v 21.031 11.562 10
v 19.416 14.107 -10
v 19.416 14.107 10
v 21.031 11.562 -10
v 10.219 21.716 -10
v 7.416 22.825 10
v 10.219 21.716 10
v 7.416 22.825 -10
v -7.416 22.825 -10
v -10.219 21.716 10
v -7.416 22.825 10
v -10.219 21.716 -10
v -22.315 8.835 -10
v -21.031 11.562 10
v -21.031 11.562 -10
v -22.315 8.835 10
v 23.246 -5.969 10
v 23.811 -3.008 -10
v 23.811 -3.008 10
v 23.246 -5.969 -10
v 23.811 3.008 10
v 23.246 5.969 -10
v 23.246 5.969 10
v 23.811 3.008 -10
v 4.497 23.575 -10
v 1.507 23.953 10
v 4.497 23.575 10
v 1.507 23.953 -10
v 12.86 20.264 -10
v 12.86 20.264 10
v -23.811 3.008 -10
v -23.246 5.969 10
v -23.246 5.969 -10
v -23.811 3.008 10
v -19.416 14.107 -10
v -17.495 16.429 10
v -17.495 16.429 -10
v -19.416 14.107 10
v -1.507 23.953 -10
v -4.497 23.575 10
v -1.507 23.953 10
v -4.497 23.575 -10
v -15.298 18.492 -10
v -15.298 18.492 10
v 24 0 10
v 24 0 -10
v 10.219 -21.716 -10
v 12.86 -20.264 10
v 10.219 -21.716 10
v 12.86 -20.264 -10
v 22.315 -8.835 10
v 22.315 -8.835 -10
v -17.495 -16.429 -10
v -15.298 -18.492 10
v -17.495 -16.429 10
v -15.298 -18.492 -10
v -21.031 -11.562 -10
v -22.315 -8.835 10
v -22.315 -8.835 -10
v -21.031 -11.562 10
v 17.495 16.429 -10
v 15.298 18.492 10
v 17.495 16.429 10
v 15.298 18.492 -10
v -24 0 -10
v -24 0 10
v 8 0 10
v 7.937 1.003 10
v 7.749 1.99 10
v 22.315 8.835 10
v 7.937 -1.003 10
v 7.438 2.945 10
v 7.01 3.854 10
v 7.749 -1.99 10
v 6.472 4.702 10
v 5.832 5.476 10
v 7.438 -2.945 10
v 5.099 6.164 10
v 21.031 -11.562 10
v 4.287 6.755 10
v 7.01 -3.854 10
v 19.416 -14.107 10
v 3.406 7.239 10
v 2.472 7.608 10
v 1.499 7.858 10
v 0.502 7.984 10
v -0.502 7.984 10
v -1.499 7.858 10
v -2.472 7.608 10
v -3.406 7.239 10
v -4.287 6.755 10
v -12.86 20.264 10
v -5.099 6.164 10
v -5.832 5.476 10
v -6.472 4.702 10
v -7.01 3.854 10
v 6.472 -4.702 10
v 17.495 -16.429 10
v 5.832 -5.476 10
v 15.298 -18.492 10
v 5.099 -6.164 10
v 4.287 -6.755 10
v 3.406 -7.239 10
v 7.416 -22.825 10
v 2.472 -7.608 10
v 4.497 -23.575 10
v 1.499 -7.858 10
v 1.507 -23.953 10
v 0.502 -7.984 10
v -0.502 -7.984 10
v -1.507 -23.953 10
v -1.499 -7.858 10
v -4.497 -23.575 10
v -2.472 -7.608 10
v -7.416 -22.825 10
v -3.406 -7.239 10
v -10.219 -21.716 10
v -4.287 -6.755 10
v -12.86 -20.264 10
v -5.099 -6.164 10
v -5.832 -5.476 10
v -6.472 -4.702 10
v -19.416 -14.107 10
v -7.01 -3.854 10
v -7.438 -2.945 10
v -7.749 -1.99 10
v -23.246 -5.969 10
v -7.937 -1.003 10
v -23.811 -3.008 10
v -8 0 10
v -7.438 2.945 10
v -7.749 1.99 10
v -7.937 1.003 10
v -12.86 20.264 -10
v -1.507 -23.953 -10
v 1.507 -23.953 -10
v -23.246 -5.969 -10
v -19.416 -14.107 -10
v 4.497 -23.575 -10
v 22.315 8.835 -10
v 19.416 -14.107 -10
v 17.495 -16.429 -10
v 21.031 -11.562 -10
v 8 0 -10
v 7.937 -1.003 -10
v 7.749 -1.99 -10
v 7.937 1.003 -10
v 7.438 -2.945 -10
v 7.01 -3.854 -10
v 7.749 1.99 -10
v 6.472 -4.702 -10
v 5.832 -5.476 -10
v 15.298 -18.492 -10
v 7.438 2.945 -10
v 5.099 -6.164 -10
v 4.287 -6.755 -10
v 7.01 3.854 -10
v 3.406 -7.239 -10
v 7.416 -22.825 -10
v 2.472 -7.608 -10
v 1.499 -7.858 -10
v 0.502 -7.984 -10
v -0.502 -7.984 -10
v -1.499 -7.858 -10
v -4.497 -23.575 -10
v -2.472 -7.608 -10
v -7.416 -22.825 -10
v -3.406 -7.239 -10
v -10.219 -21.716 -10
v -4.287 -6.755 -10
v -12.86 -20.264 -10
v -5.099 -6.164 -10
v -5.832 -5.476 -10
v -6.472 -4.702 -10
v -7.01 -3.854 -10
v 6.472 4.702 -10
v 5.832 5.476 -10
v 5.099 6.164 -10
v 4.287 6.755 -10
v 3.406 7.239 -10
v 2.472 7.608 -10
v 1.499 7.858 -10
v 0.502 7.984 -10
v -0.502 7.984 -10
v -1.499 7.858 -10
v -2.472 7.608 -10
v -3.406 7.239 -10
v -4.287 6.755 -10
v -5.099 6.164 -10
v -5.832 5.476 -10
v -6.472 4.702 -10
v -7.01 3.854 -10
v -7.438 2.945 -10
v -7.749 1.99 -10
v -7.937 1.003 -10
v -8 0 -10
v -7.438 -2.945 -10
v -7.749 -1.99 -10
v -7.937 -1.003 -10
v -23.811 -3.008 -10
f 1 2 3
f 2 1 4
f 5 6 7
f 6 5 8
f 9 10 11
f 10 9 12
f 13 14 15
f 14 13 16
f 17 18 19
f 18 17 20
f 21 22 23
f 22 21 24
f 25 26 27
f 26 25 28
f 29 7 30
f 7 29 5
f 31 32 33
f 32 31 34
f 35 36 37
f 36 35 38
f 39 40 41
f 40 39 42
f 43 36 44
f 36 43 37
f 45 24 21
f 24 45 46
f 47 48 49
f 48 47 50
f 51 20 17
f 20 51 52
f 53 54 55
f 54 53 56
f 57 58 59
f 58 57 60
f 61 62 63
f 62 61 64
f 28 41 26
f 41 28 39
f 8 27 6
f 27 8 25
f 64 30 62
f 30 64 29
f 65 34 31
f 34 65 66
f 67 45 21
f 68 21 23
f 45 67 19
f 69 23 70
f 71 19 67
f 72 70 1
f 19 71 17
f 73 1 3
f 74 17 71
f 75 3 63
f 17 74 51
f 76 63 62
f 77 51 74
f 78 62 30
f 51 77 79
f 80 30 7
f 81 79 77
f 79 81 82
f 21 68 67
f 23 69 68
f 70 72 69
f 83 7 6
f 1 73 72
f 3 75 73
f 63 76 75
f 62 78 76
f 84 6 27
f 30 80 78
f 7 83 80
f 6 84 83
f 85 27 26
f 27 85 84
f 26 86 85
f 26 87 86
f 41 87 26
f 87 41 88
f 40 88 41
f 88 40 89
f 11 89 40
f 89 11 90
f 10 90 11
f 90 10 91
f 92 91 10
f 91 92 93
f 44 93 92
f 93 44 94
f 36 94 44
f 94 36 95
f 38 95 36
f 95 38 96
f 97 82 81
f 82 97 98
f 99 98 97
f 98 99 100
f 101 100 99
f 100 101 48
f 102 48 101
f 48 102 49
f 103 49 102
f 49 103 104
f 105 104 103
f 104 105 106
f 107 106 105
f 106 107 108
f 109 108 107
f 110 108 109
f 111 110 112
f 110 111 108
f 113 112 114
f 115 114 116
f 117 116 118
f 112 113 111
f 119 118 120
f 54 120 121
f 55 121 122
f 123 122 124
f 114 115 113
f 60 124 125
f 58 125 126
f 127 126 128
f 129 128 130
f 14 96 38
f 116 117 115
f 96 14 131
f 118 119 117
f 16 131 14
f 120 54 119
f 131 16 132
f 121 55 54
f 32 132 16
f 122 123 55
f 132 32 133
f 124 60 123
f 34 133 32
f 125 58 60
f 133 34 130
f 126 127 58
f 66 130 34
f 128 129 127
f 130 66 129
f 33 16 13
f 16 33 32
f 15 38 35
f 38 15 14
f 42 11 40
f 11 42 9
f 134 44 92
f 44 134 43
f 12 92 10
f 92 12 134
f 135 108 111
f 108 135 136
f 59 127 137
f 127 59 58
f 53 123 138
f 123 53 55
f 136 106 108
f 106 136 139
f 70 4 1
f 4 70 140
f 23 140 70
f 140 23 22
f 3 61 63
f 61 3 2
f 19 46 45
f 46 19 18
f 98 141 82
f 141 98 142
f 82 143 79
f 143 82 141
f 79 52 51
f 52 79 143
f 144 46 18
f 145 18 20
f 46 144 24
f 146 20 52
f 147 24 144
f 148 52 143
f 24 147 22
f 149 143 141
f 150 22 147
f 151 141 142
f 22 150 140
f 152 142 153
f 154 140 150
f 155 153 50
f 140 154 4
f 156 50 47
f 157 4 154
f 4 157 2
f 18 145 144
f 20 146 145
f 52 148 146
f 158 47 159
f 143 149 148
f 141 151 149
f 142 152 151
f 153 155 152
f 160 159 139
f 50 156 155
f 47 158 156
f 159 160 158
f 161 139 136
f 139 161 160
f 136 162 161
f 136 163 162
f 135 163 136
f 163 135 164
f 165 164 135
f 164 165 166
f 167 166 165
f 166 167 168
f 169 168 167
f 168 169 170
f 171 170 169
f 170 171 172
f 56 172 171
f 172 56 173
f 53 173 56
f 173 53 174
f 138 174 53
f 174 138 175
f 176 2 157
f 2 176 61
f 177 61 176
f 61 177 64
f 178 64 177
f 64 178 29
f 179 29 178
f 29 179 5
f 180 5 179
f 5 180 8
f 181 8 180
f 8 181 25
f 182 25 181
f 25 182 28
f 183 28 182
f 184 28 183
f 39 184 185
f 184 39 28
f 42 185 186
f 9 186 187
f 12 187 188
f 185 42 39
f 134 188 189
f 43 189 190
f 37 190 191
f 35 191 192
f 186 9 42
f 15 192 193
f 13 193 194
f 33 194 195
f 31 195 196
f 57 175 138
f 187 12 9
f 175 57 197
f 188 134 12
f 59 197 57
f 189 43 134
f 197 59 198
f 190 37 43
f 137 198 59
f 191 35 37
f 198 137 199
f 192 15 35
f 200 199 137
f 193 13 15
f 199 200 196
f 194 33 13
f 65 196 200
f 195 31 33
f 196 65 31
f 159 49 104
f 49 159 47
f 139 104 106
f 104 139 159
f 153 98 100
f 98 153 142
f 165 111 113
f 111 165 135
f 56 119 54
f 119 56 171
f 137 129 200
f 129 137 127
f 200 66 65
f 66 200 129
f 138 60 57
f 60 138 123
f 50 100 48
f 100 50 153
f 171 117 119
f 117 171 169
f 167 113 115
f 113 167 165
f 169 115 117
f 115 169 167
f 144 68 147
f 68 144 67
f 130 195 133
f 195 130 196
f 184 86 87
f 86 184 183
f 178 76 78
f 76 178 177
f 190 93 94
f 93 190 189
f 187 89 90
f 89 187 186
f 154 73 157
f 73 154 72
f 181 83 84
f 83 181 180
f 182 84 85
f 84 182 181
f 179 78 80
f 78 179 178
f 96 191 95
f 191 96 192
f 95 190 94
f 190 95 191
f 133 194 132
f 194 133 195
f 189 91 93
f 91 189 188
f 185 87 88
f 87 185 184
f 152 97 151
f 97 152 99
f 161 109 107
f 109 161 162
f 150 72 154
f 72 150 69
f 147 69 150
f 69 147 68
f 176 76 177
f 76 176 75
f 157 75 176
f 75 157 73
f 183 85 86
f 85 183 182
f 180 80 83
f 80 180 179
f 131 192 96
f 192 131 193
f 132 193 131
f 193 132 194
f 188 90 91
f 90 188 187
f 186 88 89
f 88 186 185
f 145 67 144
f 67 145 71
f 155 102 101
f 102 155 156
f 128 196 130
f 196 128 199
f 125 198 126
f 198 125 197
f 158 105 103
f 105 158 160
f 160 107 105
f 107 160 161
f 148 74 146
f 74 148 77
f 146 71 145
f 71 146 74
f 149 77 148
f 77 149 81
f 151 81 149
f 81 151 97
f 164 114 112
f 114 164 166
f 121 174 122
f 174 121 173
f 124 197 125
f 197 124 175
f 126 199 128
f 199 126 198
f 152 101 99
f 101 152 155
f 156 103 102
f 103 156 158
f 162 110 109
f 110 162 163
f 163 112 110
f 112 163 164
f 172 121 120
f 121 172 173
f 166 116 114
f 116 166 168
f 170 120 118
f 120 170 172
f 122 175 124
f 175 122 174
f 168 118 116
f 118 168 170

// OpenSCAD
$fn = 50;


difference() {
	union() {
		translate(v = [0, 0, -10.0000000000]) {
			cylinder(h = 20, r = 24.0000000000);
		}
	}
	union() {
		translate(v = [0, 0, -100.0000000000]) {
			cylinder(h = 200, r = 8);
		}
	}
}
